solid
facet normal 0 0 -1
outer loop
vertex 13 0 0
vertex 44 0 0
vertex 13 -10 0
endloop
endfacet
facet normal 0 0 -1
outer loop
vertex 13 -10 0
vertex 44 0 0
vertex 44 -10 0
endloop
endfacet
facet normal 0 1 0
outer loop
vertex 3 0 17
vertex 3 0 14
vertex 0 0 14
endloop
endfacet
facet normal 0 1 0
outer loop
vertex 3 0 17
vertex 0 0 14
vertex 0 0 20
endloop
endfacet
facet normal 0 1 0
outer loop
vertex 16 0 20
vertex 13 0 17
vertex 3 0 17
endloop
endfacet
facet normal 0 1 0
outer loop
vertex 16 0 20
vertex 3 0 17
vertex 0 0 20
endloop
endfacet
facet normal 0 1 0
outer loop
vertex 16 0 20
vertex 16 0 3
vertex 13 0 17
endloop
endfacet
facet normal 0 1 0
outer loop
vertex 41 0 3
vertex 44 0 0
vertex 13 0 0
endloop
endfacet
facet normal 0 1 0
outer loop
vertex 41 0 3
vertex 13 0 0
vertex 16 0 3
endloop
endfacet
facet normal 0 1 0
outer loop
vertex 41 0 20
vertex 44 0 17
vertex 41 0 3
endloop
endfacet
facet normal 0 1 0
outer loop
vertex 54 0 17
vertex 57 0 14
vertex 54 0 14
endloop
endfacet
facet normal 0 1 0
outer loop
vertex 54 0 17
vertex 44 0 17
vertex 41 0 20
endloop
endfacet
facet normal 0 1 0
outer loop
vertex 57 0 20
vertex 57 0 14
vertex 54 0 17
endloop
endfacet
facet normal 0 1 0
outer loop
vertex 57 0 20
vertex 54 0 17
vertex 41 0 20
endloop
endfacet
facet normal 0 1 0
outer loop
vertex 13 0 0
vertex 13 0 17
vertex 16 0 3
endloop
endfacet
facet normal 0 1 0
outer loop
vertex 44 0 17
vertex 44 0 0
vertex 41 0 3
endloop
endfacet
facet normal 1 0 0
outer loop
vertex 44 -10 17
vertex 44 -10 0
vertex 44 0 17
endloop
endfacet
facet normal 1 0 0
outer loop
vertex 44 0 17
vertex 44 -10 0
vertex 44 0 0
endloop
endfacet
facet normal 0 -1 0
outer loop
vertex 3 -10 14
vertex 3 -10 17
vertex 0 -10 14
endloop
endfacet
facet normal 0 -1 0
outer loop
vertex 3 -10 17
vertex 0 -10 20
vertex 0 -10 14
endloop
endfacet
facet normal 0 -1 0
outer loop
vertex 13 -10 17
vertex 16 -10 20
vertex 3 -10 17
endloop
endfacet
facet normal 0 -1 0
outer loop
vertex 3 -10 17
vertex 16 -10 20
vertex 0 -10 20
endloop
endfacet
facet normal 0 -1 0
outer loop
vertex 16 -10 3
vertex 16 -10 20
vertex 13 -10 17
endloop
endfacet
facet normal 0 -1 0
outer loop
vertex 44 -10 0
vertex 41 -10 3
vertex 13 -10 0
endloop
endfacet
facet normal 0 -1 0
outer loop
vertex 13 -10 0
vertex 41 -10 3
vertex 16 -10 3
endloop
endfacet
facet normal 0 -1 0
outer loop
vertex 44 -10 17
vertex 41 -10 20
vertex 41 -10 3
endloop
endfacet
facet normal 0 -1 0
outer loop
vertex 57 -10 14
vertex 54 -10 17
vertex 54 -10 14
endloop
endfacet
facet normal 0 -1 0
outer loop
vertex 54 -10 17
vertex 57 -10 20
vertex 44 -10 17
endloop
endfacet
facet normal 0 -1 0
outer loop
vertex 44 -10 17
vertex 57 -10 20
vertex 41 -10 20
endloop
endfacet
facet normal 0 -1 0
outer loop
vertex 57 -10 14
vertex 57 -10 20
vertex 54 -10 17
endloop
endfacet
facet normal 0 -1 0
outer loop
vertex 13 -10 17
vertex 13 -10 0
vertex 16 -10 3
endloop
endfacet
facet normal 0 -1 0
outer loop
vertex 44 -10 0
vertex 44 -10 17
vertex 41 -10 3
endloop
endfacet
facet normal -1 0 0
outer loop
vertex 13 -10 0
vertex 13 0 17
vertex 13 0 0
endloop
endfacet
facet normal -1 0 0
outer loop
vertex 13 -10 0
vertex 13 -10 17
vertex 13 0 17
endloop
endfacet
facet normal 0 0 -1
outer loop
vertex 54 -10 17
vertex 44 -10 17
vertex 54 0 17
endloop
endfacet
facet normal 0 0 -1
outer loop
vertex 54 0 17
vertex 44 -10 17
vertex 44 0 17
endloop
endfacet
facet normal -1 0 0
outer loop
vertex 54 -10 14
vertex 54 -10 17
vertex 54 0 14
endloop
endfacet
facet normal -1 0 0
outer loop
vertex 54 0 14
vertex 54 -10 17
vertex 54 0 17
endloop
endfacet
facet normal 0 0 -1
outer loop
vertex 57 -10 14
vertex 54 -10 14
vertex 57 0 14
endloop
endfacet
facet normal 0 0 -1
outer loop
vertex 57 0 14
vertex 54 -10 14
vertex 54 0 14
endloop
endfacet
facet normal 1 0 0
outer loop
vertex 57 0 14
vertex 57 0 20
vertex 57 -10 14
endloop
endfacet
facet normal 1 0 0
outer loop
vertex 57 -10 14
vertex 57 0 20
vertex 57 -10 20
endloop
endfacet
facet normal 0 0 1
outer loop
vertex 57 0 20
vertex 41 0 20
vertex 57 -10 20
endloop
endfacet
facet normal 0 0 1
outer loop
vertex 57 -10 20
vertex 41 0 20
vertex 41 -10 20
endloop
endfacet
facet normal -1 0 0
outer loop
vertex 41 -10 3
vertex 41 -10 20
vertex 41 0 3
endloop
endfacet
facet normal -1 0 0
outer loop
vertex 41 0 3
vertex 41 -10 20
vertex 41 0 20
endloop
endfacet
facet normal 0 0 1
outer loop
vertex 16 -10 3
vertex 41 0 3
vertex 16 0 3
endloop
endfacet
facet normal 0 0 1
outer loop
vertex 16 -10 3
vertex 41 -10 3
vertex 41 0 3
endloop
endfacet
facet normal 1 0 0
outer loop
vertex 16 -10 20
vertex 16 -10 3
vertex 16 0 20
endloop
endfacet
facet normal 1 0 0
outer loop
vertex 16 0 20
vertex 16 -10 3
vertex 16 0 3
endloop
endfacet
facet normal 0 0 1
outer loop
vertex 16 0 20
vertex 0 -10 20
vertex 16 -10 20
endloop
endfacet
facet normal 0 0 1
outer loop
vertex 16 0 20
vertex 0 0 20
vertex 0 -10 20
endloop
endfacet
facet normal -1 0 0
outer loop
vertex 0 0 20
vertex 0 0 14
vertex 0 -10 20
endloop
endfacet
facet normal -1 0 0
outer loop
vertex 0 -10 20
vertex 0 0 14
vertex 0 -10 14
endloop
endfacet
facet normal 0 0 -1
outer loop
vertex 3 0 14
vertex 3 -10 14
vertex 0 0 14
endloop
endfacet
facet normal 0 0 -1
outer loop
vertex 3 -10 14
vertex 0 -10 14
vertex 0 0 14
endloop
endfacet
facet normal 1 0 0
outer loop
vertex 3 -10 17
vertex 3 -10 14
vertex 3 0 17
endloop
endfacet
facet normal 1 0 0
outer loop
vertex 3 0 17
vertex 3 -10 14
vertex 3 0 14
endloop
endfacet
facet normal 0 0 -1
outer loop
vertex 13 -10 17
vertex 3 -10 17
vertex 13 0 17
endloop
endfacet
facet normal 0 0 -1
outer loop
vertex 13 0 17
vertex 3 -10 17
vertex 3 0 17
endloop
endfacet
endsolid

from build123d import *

# Parameters (mm, degrees)
SKETCH_W      = 57
SKETCH_H      = 20
PAD_DEPTH     = 10
SKETCH001_W   = 10
SKETCH001_H   = 17
SKETCH001_W_2 = 3
SKETCH001_H_2 = 14
SKETCH001_W_3 = 25
POCKET_DEPTH  = 10


with BuildPart() as part:
    # Sketch → Pad (new body)
    with BuildSketch(Plane.XZ):
        with Locations((28.5, 10)):
            Rectangle(SKETCH_W, SKETCH_H)
    extrude(amount=PAD_DEPTH)

    # Sketch001 (on Face6 of Pad) → Pocket (cut)
    with BuildSketch(Plane.XZ.offset(10)):
        with Locations((8, 8.5)):
            Rectangle(SKETCH001_W, SKETCH001_H)
        with Locations((1.5, 7)):
            Rectangle(SKETCH001_W_2, SKETCH001_H_2)
        with Locations((28.5, 11.5)):
            Rectangle(SKETCH001_W_3, SKETCH001_H)
        with Locations((49, 8.5)):
            Rectangle(SKETCH001_W, SKETCH001_H)
        with Locations((55.5, 7)):
            Rectangle(SKETCH001_W_2, SKETCH001_H_2)
    extrude(amount=-POCKET_DEPTH, mode=Mode.SUBTRACT)


solid = part.part
